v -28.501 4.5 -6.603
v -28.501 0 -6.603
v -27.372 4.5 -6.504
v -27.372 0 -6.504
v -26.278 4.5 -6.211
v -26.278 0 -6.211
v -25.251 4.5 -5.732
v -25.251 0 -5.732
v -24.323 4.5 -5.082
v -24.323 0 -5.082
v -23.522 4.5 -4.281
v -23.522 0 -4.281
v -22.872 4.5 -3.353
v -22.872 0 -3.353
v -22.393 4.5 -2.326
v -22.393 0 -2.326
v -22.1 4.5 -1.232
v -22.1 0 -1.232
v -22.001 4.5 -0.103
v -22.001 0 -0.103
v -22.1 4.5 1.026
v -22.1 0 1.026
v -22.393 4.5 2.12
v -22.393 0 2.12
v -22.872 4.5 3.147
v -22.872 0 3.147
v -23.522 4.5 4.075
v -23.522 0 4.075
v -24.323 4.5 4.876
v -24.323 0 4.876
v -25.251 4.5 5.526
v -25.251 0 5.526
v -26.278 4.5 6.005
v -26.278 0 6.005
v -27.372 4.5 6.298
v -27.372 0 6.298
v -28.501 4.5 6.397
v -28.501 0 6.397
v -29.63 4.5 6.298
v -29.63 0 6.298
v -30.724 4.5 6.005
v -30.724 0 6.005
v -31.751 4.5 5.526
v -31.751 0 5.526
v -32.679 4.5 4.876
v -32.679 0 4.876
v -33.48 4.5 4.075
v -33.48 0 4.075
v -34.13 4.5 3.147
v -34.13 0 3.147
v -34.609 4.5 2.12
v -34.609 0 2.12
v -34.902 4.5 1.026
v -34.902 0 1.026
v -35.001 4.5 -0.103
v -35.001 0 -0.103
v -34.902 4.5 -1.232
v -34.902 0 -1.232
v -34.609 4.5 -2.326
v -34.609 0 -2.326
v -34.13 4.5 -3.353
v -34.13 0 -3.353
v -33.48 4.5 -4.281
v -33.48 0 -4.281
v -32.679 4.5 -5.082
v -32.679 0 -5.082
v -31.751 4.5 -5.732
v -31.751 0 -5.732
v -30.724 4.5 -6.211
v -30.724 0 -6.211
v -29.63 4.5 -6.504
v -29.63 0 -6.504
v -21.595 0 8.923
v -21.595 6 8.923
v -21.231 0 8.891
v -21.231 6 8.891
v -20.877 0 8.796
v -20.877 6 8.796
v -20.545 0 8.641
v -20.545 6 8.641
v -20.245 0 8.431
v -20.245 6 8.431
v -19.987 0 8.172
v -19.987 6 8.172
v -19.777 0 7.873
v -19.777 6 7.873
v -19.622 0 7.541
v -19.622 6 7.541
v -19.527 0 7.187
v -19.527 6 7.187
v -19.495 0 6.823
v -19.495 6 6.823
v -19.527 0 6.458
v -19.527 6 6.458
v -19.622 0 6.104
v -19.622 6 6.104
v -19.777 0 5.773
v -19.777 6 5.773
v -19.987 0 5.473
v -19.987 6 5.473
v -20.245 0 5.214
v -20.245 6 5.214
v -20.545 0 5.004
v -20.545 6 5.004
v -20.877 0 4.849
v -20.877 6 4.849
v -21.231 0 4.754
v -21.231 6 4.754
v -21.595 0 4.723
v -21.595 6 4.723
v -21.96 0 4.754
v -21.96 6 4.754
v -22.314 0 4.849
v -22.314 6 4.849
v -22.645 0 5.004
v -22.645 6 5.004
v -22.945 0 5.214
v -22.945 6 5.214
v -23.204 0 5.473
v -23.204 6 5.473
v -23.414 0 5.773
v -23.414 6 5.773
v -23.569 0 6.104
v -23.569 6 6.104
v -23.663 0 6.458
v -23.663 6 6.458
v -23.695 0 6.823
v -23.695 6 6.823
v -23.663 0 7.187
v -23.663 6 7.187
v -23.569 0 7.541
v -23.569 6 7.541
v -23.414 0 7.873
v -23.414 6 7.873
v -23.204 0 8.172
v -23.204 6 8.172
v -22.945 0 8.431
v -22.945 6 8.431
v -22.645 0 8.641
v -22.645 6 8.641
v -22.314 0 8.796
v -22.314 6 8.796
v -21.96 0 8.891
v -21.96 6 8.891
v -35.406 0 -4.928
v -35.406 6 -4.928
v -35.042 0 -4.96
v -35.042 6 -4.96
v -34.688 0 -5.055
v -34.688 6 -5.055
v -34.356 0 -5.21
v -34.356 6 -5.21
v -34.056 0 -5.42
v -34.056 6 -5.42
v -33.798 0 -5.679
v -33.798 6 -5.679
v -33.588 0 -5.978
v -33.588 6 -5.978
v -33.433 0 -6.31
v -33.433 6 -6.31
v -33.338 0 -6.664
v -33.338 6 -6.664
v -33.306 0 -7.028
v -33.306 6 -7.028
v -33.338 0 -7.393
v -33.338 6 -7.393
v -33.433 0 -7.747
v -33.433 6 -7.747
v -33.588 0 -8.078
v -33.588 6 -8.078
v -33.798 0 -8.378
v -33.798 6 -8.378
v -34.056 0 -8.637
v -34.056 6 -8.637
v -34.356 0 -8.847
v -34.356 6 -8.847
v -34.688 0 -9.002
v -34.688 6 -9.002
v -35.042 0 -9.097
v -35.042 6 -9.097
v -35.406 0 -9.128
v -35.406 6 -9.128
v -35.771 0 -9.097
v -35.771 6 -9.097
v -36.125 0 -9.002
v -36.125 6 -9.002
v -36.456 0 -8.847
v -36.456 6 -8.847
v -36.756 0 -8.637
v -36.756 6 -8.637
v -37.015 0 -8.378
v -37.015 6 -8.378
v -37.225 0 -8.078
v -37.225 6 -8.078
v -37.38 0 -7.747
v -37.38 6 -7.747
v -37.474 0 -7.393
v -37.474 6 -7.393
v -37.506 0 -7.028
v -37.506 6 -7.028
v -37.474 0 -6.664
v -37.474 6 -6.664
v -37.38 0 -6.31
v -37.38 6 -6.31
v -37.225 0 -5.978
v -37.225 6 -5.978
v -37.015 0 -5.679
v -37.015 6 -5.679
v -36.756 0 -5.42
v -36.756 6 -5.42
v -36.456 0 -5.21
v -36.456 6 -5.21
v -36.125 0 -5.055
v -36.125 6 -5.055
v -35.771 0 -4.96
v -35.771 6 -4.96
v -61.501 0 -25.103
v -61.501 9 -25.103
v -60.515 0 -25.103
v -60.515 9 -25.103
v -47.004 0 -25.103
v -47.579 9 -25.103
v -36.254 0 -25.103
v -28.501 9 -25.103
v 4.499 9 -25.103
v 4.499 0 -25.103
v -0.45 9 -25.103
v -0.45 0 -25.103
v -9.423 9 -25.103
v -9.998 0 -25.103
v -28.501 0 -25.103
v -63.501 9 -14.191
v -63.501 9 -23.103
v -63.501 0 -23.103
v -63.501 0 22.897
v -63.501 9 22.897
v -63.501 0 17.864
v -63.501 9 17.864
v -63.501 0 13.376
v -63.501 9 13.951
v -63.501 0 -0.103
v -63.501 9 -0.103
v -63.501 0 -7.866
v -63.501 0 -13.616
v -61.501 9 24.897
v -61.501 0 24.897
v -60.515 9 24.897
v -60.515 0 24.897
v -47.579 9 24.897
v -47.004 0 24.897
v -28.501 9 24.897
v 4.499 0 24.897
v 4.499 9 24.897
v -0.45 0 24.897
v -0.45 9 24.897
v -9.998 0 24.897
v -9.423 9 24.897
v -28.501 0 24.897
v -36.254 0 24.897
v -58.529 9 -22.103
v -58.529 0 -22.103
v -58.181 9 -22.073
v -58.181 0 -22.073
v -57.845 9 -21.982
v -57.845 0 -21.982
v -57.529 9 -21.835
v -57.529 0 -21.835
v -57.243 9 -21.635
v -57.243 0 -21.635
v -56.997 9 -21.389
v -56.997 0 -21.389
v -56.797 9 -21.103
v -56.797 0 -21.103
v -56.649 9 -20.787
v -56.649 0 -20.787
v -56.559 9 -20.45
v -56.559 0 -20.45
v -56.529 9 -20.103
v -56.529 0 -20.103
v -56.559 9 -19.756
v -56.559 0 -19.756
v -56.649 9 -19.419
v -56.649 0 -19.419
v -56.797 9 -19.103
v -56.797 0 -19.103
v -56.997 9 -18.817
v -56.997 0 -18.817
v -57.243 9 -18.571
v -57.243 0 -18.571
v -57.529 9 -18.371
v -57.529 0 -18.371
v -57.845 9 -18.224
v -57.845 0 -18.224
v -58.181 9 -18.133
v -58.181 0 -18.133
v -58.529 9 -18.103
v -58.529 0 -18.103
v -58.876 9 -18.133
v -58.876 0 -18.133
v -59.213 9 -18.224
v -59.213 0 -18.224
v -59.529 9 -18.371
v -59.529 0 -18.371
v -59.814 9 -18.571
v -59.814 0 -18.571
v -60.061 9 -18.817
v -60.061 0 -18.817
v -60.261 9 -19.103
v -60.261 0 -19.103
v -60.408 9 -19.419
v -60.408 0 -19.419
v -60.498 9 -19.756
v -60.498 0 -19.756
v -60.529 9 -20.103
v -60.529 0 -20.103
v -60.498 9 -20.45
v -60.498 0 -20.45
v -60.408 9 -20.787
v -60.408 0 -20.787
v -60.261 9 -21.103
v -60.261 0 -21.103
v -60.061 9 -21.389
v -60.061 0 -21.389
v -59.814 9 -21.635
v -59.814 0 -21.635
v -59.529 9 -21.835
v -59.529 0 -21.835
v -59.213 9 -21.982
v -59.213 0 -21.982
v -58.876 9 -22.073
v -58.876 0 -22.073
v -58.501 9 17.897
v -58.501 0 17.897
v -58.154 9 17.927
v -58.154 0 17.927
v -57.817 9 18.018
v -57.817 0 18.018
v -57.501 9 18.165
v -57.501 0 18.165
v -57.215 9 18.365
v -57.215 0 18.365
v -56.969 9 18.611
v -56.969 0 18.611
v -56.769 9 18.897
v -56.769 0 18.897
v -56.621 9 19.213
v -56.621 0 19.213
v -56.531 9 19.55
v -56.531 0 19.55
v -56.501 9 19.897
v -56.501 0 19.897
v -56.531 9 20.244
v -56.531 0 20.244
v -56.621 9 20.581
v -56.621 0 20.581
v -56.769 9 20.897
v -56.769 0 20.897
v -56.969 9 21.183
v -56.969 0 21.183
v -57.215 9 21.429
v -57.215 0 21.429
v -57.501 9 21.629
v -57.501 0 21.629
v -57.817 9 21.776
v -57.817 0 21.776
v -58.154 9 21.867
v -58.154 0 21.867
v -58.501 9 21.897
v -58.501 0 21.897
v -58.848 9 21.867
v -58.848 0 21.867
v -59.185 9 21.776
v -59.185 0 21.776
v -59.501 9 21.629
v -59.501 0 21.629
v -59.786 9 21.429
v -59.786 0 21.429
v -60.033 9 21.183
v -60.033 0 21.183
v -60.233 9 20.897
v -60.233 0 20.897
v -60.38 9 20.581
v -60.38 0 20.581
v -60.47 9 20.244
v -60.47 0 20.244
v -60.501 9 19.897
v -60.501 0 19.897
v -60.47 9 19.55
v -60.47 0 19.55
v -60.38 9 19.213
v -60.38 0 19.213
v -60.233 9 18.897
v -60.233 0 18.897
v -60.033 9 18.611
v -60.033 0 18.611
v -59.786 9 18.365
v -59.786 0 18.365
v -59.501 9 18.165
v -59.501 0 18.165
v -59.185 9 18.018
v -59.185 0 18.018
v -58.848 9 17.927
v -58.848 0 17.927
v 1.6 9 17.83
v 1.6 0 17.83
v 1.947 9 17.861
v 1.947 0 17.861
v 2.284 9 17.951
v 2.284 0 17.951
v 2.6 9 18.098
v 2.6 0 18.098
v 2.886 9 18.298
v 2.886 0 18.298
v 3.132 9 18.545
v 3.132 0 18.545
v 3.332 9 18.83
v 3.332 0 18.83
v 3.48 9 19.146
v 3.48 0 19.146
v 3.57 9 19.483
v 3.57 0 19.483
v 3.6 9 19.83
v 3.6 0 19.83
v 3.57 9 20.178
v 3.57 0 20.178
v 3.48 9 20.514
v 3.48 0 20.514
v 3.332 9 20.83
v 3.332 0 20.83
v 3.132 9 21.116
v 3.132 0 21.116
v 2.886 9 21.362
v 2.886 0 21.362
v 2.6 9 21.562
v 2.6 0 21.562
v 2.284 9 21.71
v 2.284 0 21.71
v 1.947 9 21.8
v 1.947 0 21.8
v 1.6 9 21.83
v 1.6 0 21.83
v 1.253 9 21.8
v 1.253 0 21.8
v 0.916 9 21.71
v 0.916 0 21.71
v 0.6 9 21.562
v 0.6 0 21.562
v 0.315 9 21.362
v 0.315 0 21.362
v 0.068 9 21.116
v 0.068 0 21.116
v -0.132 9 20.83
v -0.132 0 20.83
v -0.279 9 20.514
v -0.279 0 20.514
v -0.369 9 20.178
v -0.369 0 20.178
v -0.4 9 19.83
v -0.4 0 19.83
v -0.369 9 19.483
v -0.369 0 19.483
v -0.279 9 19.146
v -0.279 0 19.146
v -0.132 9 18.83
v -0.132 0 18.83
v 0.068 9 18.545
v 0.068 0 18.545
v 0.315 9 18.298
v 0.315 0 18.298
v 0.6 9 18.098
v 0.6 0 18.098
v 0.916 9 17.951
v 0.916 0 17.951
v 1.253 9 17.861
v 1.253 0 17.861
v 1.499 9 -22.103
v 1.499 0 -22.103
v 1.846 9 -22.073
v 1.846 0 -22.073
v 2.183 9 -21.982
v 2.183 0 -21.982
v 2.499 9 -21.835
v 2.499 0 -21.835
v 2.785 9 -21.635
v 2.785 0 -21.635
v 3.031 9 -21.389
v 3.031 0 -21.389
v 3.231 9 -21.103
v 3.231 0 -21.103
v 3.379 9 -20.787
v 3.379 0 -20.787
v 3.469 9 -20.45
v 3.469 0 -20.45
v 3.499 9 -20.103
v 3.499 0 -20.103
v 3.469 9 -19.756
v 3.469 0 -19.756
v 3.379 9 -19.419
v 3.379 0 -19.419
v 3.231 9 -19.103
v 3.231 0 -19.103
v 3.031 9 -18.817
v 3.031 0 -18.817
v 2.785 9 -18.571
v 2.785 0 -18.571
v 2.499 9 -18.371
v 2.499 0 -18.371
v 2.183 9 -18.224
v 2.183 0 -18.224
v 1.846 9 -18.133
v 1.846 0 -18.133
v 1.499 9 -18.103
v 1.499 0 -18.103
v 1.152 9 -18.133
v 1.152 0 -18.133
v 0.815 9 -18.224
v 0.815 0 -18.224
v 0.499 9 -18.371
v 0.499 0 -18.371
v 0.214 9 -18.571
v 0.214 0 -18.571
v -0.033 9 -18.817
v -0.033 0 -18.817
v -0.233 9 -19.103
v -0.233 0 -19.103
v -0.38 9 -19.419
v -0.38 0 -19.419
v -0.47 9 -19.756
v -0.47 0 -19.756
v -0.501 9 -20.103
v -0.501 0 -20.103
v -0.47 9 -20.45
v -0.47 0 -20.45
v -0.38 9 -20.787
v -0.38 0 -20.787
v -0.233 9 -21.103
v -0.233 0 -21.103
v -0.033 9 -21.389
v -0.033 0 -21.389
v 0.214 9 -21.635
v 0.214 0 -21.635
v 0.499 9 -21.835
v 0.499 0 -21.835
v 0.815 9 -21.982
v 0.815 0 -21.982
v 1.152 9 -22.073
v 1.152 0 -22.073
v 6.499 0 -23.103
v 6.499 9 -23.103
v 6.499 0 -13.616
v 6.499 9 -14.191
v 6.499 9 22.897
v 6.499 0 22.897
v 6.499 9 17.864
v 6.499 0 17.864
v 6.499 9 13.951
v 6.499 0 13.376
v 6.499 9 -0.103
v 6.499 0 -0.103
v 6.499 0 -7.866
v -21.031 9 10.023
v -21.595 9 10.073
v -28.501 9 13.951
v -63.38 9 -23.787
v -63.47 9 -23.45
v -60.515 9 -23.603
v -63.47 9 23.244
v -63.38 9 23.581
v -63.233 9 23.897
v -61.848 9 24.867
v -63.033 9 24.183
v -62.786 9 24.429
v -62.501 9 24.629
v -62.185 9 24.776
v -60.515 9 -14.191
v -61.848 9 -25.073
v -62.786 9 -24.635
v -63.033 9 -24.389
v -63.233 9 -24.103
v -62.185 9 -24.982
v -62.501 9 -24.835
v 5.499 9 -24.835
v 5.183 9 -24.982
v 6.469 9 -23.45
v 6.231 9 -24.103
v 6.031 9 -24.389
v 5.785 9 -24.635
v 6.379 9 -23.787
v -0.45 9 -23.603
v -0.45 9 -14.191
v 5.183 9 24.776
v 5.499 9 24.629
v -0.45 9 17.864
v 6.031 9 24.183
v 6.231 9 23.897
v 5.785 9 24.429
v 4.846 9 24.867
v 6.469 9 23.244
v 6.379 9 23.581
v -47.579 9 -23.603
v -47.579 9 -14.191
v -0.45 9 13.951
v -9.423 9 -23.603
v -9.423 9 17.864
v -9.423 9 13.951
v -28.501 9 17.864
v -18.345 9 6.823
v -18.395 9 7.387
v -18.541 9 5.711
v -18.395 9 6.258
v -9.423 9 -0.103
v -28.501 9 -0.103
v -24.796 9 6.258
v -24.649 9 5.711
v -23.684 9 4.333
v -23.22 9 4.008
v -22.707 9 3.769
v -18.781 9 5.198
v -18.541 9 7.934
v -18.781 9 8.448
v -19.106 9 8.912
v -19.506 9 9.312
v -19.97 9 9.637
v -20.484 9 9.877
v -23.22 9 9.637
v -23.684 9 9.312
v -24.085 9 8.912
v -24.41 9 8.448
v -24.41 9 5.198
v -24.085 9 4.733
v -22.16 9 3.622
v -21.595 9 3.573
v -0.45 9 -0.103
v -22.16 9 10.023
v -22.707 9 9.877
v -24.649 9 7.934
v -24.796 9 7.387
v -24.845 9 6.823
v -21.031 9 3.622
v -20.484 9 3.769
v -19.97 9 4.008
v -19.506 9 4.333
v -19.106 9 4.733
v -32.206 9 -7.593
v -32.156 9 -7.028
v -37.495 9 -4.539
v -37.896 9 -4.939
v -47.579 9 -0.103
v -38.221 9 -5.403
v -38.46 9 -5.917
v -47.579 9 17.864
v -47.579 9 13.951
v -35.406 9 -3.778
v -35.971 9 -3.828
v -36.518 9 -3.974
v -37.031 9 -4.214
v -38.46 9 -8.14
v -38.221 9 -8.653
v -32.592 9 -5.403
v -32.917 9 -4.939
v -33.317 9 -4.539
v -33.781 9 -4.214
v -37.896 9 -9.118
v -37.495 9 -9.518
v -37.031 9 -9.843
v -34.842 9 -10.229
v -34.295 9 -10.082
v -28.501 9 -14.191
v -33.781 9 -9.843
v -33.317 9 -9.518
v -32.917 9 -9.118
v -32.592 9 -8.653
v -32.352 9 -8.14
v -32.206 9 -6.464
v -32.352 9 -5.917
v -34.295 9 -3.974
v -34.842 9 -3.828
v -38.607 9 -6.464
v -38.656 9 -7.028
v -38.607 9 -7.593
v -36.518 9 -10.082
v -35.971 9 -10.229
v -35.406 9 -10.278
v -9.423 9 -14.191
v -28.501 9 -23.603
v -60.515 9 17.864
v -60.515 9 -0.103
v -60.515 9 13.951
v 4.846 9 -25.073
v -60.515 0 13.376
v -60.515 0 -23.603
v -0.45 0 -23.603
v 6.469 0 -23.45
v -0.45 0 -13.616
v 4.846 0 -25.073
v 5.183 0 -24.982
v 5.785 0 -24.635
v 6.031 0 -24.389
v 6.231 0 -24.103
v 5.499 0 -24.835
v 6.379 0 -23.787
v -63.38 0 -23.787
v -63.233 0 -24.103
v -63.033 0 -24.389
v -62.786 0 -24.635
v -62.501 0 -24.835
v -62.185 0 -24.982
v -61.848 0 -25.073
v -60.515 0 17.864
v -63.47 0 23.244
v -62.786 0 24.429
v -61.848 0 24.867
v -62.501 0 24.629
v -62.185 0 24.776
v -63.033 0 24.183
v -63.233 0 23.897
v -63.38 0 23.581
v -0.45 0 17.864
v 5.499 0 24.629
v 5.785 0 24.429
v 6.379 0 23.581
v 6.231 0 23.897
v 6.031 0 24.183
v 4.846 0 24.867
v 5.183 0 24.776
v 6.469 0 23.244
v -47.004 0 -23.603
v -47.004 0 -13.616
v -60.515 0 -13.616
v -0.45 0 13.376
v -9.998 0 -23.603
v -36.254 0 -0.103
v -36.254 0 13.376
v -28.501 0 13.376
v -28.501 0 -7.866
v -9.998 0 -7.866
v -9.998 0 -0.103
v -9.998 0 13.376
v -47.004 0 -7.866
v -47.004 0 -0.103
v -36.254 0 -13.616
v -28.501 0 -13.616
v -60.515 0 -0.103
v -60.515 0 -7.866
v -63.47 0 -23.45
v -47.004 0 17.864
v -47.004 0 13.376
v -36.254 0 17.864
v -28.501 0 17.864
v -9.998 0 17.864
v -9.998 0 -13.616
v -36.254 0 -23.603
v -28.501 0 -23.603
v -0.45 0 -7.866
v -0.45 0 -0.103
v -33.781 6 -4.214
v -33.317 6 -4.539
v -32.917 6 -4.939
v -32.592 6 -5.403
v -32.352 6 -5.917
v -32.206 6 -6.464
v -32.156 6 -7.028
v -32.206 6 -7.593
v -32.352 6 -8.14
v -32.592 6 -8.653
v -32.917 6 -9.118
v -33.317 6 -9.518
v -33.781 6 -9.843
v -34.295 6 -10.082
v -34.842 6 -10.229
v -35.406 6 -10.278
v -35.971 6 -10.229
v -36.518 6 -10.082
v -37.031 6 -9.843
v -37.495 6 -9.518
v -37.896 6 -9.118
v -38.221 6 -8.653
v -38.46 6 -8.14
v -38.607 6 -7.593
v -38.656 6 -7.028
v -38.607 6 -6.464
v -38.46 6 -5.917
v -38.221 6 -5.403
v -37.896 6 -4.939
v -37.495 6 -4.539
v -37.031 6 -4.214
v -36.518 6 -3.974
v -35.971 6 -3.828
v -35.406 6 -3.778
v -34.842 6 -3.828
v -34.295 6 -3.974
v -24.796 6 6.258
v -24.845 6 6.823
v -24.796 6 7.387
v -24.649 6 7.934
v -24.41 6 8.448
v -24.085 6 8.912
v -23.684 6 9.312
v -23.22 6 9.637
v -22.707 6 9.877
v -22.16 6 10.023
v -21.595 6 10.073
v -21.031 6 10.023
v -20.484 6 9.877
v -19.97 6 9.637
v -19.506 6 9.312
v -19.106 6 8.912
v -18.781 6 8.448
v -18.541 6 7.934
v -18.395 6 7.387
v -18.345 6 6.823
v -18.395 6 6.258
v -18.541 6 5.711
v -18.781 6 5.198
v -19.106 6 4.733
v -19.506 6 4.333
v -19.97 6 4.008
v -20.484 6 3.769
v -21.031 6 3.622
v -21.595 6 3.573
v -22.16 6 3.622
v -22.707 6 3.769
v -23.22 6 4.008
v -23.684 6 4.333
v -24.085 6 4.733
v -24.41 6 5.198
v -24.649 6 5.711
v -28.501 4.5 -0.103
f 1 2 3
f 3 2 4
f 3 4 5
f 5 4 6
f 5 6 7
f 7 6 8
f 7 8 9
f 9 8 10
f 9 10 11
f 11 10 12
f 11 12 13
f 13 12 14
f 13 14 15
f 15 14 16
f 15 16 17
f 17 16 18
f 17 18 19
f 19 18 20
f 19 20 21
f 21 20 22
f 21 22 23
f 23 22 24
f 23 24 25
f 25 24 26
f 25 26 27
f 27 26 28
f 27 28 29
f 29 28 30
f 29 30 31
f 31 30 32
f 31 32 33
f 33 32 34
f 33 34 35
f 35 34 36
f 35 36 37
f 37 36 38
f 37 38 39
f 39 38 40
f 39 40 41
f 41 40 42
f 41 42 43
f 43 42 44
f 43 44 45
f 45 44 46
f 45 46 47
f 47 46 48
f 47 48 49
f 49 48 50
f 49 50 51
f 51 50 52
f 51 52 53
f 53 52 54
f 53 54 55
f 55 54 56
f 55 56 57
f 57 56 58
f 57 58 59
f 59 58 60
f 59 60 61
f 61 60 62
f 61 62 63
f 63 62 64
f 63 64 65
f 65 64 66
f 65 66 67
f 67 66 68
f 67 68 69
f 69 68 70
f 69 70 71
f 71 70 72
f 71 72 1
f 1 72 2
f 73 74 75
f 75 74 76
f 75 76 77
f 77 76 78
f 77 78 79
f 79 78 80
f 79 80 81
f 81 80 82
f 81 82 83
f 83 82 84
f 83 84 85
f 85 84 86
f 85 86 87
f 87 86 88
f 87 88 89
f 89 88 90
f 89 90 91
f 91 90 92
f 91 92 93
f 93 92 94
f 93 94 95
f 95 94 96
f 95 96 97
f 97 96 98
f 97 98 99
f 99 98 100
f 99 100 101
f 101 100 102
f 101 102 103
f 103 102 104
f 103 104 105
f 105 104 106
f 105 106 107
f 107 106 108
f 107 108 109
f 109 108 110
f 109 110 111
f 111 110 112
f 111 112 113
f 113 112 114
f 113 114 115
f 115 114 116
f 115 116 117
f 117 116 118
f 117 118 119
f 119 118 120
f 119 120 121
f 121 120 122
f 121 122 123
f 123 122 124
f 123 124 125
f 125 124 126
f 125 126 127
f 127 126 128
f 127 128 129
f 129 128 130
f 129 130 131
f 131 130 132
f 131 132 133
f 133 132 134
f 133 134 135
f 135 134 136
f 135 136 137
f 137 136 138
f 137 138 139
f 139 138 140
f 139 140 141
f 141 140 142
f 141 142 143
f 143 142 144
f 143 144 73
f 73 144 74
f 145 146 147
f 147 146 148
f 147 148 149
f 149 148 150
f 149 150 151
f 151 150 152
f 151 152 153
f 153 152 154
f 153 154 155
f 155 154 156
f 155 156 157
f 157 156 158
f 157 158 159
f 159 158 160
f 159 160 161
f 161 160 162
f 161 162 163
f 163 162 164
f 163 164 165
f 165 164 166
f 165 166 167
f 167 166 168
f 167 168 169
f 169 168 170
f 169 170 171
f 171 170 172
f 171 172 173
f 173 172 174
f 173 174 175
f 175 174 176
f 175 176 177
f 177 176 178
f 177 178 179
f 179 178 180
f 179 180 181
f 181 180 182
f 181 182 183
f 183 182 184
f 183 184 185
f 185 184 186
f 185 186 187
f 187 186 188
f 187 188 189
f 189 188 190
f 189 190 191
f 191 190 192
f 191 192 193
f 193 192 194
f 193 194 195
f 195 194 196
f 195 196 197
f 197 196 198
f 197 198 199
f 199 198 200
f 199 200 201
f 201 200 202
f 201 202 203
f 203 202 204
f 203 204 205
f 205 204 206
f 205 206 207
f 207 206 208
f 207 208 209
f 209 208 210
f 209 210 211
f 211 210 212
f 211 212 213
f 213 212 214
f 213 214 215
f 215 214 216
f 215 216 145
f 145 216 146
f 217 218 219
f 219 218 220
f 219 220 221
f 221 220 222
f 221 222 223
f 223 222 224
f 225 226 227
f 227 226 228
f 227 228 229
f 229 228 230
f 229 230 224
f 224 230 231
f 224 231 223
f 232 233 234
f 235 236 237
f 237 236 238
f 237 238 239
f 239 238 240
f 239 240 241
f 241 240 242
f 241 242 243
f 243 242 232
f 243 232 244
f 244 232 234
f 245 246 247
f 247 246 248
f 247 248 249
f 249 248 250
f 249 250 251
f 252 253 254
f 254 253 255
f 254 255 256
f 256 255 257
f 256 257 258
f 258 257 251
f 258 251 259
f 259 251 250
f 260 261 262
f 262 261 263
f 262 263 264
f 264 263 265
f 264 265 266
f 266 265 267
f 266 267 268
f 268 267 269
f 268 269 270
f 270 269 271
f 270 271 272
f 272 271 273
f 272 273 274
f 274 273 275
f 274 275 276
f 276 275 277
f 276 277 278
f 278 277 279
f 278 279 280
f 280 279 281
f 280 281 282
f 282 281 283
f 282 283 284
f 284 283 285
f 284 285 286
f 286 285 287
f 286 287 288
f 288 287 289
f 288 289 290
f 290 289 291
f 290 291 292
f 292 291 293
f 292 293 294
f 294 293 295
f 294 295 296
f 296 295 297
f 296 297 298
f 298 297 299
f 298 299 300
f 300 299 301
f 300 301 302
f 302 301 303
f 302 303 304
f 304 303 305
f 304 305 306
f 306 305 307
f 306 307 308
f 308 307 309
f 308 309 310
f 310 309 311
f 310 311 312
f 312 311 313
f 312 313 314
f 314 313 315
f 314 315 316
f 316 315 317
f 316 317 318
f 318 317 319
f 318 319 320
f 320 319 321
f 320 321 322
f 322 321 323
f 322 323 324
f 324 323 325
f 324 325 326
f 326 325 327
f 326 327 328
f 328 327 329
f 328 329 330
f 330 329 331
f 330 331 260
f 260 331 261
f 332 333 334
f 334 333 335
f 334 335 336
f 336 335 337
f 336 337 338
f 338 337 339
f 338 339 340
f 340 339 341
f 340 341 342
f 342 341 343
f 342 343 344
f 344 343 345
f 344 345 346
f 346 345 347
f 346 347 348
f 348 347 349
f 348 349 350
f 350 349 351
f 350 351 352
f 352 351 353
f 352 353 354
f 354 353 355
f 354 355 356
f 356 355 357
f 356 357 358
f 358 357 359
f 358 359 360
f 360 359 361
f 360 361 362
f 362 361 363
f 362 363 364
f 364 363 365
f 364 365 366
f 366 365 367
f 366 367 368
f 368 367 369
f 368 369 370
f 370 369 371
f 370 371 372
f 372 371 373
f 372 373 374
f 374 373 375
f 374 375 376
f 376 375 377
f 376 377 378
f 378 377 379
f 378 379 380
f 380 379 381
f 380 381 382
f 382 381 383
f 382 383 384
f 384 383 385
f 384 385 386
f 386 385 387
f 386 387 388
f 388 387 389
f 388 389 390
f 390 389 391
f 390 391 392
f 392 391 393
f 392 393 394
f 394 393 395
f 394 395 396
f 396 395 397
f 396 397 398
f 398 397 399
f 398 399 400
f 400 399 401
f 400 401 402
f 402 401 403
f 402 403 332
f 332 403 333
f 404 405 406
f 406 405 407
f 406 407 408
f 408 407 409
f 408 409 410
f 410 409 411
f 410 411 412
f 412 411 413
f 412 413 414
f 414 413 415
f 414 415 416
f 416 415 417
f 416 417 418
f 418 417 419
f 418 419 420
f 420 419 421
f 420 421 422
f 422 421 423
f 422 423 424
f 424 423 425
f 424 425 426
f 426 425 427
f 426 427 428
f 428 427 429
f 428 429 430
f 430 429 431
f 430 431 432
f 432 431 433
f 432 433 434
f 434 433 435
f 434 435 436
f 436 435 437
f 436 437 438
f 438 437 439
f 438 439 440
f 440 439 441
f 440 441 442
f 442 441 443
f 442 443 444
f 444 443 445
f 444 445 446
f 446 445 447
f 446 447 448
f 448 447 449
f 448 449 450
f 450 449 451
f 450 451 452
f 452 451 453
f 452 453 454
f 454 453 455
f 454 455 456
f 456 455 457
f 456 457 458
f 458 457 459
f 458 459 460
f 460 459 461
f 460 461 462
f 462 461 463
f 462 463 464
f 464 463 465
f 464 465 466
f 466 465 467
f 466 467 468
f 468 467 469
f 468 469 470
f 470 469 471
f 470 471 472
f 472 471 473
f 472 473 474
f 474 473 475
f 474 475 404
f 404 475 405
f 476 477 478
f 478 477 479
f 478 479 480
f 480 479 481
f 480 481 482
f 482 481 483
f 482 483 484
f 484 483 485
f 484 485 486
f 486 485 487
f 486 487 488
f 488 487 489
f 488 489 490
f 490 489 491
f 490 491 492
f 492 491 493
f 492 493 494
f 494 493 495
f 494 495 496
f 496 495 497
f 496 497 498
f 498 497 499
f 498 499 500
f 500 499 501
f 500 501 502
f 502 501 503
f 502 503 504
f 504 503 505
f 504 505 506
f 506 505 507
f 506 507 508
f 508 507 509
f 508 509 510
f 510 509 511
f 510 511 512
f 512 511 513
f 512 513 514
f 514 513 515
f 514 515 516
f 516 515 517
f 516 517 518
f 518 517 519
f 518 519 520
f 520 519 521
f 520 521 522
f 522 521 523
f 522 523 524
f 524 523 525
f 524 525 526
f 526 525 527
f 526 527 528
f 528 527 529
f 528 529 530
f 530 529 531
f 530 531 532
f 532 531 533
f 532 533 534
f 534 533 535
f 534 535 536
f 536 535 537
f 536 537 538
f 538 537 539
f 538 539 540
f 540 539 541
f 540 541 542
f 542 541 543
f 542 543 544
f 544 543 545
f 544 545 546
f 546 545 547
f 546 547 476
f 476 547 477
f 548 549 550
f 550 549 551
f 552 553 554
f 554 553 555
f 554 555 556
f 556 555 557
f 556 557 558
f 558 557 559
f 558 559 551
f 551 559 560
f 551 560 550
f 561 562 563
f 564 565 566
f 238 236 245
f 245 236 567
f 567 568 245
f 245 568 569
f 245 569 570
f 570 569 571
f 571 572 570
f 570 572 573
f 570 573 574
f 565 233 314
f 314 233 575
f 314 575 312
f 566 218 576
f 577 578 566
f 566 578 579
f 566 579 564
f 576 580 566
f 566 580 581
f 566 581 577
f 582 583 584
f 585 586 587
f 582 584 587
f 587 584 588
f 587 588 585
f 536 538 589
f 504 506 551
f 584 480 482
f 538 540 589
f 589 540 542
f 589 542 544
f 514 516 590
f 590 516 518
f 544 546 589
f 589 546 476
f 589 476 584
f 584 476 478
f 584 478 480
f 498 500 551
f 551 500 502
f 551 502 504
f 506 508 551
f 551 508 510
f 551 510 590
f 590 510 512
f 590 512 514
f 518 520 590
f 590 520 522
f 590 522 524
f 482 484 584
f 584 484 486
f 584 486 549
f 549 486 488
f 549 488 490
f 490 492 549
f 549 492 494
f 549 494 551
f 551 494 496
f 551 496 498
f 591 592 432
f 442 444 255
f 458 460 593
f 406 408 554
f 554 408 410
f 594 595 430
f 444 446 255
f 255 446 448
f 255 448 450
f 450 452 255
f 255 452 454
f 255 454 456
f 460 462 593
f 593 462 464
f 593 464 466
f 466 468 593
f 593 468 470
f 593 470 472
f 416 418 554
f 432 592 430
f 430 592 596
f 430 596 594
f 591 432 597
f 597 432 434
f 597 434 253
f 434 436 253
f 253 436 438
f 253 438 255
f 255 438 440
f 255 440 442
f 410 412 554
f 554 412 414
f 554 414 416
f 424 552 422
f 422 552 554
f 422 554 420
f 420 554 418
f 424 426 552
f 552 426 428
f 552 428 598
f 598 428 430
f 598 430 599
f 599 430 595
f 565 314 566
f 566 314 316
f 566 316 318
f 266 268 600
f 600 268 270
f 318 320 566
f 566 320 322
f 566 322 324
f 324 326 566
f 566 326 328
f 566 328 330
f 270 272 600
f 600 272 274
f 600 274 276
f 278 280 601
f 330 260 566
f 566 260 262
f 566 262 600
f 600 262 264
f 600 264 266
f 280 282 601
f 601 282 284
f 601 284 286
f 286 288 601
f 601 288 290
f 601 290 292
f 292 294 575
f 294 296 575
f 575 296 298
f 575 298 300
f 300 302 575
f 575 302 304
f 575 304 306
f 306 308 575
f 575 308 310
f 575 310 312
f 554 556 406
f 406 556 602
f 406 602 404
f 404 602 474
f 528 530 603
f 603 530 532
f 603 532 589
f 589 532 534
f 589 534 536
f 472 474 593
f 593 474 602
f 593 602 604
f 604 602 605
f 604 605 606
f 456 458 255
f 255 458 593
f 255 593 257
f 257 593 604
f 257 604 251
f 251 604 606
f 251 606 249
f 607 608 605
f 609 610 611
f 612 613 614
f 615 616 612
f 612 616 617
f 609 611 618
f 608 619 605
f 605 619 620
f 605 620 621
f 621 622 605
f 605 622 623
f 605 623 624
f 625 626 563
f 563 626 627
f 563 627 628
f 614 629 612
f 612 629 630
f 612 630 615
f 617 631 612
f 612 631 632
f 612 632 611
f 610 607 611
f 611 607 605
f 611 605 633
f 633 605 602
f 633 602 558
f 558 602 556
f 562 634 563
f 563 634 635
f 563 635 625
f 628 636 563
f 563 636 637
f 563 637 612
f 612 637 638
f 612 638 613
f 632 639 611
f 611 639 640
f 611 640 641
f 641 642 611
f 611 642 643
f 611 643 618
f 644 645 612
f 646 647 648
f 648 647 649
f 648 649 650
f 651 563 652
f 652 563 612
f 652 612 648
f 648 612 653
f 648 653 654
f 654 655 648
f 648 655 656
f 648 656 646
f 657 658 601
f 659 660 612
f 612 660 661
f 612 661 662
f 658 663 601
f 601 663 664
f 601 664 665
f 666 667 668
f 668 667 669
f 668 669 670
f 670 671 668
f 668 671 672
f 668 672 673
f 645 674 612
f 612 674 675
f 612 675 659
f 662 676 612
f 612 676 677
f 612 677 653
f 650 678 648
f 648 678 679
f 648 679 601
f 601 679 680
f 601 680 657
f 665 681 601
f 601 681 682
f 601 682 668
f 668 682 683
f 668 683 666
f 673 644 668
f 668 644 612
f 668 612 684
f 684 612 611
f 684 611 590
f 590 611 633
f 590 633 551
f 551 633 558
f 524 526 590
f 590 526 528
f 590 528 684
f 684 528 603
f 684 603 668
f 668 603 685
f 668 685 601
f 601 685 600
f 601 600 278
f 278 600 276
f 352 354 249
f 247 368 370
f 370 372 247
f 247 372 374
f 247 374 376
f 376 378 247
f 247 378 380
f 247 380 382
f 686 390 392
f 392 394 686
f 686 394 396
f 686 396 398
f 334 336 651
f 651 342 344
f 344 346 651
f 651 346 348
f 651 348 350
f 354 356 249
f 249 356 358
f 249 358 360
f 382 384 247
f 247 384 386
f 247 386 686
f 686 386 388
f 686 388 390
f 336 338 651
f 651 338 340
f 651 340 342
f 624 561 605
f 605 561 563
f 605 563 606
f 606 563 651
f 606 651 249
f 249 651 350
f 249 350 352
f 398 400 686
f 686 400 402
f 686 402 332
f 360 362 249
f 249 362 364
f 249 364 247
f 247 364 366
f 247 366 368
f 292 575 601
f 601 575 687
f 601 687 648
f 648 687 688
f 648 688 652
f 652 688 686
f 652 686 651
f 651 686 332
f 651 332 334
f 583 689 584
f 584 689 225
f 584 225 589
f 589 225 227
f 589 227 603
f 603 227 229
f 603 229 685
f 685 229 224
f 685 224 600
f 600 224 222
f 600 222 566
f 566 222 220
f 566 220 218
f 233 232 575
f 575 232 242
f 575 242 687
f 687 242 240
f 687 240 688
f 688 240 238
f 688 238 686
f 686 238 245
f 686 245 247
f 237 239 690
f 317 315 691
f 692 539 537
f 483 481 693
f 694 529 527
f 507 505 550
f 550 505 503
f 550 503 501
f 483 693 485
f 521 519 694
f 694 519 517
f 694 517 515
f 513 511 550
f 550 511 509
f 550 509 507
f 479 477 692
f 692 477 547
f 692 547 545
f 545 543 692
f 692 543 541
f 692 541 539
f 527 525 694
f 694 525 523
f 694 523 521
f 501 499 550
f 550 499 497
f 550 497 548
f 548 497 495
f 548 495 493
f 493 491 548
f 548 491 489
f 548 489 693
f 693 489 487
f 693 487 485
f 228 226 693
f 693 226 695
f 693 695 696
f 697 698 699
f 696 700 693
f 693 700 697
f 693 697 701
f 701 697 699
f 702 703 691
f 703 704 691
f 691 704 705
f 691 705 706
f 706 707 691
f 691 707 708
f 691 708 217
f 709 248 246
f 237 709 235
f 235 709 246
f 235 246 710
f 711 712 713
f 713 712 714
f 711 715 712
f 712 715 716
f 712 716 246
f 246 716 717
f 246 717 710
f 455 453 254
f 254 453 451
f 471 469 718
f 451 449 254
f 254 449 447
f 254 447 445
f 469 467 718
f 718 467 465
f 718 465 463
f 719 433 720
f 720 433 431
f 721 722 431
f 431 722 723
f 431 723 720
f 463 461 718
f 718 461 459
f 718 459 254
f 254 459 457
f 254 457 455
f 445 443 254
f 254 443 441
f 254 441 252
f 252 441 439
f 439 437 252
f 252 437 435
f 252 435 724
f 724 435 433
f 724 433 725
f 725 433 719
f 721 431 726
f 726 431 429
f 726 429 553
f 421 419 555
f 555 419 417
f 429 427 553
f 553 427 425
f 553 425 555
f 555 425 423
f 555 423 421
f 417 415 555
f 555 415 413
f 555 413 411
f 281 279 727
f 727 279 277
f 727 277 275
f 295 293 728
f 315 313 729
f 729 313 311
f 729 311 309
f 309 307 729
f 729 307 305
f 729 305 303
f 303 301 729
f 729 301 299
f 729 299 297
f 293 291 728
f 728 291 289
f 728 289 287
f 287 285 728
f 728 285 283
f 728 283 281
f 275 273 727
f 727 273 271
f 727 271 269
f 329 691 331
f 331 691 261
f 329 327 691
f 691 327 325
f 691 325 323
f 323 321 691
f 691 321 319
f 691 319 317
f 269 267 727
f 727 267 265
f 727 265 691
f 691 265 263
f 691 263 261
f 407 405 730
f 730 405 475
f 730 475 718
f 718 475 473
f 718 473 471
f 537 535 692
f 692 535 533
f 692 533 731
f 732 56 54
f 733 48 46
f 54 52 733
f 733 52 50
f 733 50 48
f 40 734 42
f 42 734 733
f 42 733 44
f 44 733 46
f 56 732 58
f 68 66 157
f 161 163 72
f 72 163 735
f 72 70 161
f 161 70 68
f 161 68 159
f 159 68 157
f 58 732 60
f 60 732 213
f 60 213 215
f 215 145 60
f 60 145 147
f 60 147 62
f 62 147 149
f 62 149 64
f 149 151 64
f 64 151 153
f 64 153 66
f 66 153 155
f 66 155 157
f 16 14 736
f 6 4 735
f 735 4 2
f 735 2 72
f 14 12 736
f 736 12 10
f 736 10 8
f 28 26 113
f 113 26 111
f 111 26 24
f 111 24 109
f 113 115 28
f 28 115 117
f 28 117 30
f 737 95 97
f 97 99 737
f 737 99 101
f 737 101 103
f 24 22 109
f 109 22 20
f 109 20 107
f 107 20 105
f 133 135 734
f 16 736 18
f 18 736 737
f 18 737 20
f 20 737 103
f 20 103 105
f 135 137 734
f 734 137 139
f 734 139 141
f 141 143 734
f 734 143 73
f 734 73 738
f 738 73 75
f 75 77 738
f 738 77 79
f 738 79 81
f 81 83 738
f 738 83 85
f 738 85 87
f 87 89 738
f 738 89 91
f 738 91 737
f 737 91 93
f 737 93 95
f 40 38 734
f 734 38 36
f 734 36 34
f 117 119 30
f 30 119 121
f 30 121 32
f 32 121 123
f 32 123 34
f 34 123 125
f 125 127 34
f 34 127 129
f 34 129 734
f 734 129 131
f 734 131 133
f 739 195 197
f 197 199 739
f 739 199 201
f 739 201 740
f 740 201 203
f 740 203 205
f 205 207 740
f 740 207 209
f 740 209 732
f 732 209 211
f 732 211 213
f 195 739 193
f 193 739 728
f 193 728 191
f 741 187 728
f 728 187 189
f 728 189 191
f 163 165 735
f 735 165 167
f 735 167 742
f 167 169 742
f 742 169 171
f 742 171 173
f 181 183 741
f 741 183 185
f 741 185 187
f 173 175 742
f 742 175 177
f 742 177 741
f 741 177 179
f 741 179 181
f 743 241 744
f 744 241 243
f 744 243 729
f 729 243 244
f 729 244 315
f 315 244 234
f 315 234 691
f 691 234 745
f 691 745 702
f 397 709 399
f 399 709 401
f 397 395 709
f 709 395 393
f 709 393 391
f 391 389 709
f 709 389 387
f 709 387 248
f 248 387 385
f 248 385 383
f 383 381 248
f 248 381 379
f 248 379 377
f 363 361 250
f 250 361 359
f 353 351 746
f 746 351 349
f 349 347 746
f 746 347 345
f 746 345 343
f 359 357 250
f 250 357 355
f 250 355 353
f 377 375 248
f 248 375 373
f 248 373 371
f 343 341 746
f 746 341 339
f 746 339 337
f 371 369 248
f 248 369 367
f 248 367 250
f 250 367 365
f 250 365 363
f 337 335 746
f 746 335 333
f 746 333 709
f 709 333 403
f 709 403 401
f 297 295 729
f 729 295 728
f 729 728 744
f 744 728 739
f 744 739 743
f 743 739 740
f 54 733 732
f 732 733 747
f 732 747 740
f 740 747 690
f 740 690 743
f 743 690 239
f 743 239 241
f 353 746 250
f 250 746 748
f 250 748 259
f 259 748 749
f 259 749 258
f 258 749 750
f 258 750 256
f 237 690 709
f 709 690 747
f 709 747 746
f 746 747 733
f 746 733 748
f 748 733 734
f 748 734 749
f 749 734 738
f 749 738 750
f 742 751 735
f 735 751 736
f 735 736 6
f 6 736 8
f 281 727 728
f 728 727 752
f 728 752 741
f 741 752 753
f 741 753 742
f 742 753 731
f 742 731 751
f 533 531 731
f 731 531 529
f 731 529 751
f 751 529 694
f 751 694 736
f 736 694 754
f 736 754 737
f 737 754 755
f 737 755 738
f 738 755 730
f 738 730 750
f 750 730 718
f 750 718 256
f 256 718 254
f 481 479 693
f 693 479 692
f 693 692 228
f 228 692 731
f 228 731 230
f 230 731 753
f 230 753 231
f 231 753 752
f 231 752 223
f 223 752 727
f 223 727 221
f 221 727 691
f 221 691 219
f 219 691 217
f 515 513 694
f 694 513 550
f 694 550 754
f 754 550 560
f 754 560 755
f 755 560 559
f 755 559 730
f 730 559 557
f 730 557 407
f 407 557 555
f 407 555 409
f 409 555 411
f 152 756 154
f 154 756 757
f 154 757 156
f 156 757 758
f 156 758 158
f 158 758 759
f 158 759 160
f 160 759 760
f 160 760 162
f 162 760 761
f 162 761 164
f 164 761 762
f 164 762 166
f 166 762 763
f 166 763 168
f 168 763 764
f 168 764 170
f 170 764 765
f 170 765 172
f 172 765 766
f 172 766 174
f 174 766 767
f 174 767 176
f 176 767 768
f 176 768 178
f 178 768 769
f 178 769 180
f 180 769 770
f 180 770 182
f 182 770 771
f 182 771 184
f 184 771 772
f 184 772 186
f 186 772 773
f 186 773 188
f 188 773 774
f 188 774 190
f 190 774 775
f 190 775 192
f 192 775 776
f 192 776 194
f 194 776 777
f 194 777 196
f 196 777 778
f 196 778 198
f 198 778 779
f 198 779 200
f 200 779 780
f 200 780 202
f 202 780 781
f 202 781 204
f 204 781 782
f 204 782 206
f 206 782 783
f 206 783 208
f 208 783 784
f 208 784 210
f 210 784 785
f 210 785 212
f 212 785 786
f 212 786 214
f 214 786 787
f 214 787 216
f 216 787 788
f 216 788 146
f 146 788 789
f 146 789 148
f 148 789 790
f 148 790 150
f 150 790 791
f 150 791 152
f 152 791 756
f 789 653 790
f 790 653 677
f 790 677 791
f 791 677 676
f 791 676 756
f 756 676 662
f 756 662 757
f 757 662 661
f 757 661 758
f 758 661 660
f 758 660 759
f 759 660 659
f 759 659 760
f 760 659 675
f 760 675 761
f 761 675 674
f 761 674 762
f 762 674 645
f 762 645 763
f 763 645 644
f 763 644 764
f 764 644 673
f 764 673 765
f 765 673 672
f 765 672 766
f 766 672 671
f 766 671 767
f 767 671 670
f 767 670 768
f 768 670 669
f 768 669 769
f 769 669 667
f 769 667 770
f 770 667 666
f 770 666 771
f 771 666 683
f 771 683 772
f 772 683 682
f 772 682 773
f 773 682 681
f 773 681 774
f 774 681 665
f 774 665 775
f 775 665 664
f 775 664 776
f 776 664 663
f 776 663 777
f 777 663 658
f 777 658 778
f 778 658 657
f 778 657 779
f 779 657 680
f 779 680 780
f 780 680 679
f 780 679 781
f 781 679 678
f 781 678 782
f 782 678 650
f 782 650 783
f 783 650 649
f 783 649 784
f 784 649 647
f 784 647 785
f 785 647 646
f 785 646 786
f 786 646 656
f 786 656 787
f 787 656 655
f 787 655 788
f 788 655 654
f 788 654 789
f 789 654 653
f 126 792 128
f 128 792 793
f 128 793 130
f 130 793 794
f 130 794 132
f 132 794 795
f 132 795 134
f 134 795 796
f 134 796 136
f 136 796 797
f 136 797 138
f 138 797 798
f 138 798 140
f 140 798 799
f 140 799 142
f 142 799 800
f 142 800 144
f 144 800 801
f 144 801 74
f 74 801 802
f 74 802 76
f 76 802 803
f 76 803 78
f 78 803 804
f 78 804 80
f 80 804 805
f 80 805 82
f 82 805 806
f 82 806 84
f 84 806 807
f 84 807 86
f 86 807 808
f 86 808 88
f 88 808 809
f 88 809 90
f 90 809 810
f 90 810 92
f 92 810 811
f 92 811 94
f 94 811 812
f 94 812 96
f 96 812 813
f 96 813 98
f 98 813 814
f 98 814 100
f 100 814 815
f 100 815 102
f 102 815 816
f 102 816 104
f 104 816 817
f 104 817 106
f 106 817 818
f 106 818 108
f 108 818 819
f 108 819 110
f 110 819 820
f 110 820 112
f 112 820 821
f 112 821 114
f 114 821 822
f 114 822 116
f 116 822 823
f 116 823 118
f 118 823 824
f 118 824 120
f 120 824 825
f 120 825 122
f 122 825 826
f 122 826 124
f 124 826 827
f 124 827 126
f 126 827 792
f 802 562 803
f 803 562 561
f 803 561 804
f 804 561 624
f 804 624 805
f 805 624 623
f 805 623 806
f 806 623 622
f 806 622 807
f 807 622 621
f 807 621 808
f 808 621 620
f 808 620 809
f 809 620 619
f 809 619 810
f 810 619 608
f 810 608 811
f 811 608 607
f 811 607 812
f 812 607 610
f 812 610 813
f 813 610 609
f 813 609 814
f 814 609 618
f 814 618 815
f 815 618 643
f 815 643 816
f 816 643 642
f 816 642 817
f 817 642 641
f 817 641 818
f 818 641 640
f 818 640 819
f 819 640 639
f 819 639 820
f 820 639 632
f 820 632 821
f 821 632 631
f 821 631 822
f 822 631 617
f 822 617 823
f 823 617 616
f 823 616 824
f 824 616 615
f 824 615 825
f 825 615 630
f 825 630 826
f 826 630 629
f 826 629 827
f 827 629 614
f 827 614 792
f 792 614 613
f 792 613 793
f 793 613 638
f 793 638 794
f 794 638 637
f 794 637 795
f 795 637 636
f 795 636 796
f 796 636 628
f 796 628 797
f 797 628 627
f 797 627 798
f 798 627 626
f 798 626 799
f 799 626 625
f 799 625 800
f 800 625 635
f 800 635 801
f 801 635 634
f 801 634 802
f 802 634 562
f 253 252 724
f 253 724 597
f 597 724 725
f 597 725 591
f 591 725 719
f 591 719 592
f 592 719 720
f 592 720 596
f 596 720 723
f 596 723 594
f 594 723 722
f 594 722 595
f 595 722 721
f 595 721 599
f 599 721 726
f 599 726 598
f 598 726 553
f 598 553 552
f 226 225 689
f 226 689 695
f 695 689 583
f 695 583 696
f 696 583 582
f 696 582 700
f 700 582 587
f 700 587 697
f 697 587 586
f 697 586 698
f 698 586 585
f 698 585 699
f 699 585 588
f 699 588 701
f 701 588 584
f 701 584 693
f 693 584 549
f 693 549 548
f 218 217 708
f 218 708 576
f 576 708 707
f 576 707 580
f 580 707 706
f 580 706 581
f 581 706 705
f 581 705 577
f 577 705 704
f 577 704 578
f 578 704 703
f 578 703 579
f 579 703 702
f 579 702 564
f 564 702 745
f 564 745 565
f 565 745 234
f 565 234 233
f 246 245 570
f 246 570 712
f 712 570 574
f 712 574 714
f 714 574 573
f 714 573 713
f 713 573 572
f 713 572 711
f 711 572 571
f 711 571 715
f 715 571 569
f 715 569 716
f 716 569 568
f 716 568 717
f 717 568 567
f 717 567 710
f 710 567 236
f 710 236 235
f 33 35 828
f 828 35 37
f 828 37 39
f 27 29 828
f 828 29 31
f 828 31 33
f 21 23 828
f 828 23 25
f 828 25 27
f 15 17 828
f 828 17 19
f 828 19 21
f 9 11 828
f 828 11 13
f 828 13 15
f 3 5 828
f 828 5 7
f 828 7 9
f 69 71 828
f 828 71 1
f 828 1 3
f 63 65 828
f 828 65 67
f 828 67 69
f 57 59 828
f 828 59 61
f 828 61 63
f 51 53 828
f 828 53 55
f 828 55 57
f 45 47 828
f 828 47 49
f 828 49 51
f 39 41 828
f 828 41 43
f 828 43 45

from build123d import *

# Parameters (mm, degrees)
SKETCH1_W           = 70
SKETCH1_H           = 50
SKETCH1_R           = 2
SKETCH1_R_2         = 6.5
BOSS_EXTRUDE1_DEPTH = 9
SKETCH5_R           = 2.1
CUT_EXTRUDE1_DEPTH  = 9
SKETCH6_R           = 3.25
CUT_EXTRUDE2_DEPTH  = 3
FILLET1_R           = 2
BOSS_EXTRUDE3_START = -4.5
SKETCH8_R           = 6.5
BOSS_EXTRUDE3_DEPTH = 4.5


with BuildPart() as part:
    # Sketch1 → Boss-Extrude1 (new body)
    with BuildSketch(Plane(origin=(0, 0, 0), x_dir=(1, 0, 0), z_dir=(0, 1, 0))):
        with Locations((-28.500824125, 0.1029652)):
            Rectangle(SKETCH1_W, SKETCH1_H)
        with Locations(Location((-58.528775182, 20.1029652, 0), (0, 0, 270))):
            Circle(SKETCH1_R, mode=Mode.SUBTRACT)
        with Locations(Location((-58.500824125, -19.8970348, 0), (0, 0, 270))):
            Circle(SKETCH1_R, mode=Mode.SUBTRACT)
        with Locations(Location((1.600142136, -19.83023128, 0), (0, 0, 270))):
            Circle(SKETCH1_R, mode=Mode.SUBTRACT)
        with Locations(Location((1.499175875, 20.1029652, 0), (0, 0, 270))):
            Circle(SKETCH1_R, mode=Mode.SUBTRACT)
        with Locations(Location((-28.500824125, 0.1029652, 0), (0, 0, 270))):
            Circle(SKETCH1_R_2, mode=Mode.SUBTRACT)
    extrude(amount=BOSS_EXTRUDE1_DEPTH)

    # Sketch5 → Cut-Extrude1 (cut)
    with BuildSketch(Plane(origin=(0, 9, 0), x_dir=(1, 0, 0), z_dir=(0, 1, 0))):
        with Locations(Location((-35.4063316, 7.028451935, 0), (0, 0, 270))):
            Circle(SKETCH5_R)
        with Locations(Location((-21.595316651, -6.822521536, 0), (0, 0, 270))):
            Circle(SKETCH5_R)
    extrude(amount=-CUT_EXTRUDE1_DEPTH, mode=Mode.SUBTRACT)

    # Sketch6 → Cut-Extrude2 (cut)
    with BuildSketch(Plane(origin=(0, 9, 0), x_dir=(1, 0, 0), z_dir=(0, 1, 0))):
        with Locations(Location((-35.4063316, 7.028451935, 0), (0, 0, 270))):
            Circle(SKETCH6_R)
        with Locations(Location((-21.595316651, -6.822521536, 0), (0, 0, 270))):
            Circle(SKETCH6_R)
    extrude(amount=-CUT_EXTRUDE2_DEPTH, mode=Mode.SUBTRACT)

    # Fillet1
    fillet1_edges = [part.edges().sort_by_distance(p)[0] for p in [
        (6.499175875, 4.5, -25.1029652),
        (6.499175875, 4.5, 24.8970348),
        (-63.500824125, 4.5, 24.8970348),
        (-63.500824125, 4.5, -25.1029652),
    ]]
    fillet(fillet1_edges, radius=FILLET1_R)

    # Sketch8 → Boss-Extrude3 (add)
    with BuildSketch(Plane(origin=(0, 9, 0), x_dir=(1, 0, 0), z_dir=(0, 1, 0)).offset(BOSS_EXTRUDE3_START)):
        with Locations(Location((-28.500824125, 0.1029652, 0), (0, 0, 270))):
            Circle(SKETCH8_R)
    extrude(amount=BOSS_EXTRUDE3_DEPTH)


solid = part.part
